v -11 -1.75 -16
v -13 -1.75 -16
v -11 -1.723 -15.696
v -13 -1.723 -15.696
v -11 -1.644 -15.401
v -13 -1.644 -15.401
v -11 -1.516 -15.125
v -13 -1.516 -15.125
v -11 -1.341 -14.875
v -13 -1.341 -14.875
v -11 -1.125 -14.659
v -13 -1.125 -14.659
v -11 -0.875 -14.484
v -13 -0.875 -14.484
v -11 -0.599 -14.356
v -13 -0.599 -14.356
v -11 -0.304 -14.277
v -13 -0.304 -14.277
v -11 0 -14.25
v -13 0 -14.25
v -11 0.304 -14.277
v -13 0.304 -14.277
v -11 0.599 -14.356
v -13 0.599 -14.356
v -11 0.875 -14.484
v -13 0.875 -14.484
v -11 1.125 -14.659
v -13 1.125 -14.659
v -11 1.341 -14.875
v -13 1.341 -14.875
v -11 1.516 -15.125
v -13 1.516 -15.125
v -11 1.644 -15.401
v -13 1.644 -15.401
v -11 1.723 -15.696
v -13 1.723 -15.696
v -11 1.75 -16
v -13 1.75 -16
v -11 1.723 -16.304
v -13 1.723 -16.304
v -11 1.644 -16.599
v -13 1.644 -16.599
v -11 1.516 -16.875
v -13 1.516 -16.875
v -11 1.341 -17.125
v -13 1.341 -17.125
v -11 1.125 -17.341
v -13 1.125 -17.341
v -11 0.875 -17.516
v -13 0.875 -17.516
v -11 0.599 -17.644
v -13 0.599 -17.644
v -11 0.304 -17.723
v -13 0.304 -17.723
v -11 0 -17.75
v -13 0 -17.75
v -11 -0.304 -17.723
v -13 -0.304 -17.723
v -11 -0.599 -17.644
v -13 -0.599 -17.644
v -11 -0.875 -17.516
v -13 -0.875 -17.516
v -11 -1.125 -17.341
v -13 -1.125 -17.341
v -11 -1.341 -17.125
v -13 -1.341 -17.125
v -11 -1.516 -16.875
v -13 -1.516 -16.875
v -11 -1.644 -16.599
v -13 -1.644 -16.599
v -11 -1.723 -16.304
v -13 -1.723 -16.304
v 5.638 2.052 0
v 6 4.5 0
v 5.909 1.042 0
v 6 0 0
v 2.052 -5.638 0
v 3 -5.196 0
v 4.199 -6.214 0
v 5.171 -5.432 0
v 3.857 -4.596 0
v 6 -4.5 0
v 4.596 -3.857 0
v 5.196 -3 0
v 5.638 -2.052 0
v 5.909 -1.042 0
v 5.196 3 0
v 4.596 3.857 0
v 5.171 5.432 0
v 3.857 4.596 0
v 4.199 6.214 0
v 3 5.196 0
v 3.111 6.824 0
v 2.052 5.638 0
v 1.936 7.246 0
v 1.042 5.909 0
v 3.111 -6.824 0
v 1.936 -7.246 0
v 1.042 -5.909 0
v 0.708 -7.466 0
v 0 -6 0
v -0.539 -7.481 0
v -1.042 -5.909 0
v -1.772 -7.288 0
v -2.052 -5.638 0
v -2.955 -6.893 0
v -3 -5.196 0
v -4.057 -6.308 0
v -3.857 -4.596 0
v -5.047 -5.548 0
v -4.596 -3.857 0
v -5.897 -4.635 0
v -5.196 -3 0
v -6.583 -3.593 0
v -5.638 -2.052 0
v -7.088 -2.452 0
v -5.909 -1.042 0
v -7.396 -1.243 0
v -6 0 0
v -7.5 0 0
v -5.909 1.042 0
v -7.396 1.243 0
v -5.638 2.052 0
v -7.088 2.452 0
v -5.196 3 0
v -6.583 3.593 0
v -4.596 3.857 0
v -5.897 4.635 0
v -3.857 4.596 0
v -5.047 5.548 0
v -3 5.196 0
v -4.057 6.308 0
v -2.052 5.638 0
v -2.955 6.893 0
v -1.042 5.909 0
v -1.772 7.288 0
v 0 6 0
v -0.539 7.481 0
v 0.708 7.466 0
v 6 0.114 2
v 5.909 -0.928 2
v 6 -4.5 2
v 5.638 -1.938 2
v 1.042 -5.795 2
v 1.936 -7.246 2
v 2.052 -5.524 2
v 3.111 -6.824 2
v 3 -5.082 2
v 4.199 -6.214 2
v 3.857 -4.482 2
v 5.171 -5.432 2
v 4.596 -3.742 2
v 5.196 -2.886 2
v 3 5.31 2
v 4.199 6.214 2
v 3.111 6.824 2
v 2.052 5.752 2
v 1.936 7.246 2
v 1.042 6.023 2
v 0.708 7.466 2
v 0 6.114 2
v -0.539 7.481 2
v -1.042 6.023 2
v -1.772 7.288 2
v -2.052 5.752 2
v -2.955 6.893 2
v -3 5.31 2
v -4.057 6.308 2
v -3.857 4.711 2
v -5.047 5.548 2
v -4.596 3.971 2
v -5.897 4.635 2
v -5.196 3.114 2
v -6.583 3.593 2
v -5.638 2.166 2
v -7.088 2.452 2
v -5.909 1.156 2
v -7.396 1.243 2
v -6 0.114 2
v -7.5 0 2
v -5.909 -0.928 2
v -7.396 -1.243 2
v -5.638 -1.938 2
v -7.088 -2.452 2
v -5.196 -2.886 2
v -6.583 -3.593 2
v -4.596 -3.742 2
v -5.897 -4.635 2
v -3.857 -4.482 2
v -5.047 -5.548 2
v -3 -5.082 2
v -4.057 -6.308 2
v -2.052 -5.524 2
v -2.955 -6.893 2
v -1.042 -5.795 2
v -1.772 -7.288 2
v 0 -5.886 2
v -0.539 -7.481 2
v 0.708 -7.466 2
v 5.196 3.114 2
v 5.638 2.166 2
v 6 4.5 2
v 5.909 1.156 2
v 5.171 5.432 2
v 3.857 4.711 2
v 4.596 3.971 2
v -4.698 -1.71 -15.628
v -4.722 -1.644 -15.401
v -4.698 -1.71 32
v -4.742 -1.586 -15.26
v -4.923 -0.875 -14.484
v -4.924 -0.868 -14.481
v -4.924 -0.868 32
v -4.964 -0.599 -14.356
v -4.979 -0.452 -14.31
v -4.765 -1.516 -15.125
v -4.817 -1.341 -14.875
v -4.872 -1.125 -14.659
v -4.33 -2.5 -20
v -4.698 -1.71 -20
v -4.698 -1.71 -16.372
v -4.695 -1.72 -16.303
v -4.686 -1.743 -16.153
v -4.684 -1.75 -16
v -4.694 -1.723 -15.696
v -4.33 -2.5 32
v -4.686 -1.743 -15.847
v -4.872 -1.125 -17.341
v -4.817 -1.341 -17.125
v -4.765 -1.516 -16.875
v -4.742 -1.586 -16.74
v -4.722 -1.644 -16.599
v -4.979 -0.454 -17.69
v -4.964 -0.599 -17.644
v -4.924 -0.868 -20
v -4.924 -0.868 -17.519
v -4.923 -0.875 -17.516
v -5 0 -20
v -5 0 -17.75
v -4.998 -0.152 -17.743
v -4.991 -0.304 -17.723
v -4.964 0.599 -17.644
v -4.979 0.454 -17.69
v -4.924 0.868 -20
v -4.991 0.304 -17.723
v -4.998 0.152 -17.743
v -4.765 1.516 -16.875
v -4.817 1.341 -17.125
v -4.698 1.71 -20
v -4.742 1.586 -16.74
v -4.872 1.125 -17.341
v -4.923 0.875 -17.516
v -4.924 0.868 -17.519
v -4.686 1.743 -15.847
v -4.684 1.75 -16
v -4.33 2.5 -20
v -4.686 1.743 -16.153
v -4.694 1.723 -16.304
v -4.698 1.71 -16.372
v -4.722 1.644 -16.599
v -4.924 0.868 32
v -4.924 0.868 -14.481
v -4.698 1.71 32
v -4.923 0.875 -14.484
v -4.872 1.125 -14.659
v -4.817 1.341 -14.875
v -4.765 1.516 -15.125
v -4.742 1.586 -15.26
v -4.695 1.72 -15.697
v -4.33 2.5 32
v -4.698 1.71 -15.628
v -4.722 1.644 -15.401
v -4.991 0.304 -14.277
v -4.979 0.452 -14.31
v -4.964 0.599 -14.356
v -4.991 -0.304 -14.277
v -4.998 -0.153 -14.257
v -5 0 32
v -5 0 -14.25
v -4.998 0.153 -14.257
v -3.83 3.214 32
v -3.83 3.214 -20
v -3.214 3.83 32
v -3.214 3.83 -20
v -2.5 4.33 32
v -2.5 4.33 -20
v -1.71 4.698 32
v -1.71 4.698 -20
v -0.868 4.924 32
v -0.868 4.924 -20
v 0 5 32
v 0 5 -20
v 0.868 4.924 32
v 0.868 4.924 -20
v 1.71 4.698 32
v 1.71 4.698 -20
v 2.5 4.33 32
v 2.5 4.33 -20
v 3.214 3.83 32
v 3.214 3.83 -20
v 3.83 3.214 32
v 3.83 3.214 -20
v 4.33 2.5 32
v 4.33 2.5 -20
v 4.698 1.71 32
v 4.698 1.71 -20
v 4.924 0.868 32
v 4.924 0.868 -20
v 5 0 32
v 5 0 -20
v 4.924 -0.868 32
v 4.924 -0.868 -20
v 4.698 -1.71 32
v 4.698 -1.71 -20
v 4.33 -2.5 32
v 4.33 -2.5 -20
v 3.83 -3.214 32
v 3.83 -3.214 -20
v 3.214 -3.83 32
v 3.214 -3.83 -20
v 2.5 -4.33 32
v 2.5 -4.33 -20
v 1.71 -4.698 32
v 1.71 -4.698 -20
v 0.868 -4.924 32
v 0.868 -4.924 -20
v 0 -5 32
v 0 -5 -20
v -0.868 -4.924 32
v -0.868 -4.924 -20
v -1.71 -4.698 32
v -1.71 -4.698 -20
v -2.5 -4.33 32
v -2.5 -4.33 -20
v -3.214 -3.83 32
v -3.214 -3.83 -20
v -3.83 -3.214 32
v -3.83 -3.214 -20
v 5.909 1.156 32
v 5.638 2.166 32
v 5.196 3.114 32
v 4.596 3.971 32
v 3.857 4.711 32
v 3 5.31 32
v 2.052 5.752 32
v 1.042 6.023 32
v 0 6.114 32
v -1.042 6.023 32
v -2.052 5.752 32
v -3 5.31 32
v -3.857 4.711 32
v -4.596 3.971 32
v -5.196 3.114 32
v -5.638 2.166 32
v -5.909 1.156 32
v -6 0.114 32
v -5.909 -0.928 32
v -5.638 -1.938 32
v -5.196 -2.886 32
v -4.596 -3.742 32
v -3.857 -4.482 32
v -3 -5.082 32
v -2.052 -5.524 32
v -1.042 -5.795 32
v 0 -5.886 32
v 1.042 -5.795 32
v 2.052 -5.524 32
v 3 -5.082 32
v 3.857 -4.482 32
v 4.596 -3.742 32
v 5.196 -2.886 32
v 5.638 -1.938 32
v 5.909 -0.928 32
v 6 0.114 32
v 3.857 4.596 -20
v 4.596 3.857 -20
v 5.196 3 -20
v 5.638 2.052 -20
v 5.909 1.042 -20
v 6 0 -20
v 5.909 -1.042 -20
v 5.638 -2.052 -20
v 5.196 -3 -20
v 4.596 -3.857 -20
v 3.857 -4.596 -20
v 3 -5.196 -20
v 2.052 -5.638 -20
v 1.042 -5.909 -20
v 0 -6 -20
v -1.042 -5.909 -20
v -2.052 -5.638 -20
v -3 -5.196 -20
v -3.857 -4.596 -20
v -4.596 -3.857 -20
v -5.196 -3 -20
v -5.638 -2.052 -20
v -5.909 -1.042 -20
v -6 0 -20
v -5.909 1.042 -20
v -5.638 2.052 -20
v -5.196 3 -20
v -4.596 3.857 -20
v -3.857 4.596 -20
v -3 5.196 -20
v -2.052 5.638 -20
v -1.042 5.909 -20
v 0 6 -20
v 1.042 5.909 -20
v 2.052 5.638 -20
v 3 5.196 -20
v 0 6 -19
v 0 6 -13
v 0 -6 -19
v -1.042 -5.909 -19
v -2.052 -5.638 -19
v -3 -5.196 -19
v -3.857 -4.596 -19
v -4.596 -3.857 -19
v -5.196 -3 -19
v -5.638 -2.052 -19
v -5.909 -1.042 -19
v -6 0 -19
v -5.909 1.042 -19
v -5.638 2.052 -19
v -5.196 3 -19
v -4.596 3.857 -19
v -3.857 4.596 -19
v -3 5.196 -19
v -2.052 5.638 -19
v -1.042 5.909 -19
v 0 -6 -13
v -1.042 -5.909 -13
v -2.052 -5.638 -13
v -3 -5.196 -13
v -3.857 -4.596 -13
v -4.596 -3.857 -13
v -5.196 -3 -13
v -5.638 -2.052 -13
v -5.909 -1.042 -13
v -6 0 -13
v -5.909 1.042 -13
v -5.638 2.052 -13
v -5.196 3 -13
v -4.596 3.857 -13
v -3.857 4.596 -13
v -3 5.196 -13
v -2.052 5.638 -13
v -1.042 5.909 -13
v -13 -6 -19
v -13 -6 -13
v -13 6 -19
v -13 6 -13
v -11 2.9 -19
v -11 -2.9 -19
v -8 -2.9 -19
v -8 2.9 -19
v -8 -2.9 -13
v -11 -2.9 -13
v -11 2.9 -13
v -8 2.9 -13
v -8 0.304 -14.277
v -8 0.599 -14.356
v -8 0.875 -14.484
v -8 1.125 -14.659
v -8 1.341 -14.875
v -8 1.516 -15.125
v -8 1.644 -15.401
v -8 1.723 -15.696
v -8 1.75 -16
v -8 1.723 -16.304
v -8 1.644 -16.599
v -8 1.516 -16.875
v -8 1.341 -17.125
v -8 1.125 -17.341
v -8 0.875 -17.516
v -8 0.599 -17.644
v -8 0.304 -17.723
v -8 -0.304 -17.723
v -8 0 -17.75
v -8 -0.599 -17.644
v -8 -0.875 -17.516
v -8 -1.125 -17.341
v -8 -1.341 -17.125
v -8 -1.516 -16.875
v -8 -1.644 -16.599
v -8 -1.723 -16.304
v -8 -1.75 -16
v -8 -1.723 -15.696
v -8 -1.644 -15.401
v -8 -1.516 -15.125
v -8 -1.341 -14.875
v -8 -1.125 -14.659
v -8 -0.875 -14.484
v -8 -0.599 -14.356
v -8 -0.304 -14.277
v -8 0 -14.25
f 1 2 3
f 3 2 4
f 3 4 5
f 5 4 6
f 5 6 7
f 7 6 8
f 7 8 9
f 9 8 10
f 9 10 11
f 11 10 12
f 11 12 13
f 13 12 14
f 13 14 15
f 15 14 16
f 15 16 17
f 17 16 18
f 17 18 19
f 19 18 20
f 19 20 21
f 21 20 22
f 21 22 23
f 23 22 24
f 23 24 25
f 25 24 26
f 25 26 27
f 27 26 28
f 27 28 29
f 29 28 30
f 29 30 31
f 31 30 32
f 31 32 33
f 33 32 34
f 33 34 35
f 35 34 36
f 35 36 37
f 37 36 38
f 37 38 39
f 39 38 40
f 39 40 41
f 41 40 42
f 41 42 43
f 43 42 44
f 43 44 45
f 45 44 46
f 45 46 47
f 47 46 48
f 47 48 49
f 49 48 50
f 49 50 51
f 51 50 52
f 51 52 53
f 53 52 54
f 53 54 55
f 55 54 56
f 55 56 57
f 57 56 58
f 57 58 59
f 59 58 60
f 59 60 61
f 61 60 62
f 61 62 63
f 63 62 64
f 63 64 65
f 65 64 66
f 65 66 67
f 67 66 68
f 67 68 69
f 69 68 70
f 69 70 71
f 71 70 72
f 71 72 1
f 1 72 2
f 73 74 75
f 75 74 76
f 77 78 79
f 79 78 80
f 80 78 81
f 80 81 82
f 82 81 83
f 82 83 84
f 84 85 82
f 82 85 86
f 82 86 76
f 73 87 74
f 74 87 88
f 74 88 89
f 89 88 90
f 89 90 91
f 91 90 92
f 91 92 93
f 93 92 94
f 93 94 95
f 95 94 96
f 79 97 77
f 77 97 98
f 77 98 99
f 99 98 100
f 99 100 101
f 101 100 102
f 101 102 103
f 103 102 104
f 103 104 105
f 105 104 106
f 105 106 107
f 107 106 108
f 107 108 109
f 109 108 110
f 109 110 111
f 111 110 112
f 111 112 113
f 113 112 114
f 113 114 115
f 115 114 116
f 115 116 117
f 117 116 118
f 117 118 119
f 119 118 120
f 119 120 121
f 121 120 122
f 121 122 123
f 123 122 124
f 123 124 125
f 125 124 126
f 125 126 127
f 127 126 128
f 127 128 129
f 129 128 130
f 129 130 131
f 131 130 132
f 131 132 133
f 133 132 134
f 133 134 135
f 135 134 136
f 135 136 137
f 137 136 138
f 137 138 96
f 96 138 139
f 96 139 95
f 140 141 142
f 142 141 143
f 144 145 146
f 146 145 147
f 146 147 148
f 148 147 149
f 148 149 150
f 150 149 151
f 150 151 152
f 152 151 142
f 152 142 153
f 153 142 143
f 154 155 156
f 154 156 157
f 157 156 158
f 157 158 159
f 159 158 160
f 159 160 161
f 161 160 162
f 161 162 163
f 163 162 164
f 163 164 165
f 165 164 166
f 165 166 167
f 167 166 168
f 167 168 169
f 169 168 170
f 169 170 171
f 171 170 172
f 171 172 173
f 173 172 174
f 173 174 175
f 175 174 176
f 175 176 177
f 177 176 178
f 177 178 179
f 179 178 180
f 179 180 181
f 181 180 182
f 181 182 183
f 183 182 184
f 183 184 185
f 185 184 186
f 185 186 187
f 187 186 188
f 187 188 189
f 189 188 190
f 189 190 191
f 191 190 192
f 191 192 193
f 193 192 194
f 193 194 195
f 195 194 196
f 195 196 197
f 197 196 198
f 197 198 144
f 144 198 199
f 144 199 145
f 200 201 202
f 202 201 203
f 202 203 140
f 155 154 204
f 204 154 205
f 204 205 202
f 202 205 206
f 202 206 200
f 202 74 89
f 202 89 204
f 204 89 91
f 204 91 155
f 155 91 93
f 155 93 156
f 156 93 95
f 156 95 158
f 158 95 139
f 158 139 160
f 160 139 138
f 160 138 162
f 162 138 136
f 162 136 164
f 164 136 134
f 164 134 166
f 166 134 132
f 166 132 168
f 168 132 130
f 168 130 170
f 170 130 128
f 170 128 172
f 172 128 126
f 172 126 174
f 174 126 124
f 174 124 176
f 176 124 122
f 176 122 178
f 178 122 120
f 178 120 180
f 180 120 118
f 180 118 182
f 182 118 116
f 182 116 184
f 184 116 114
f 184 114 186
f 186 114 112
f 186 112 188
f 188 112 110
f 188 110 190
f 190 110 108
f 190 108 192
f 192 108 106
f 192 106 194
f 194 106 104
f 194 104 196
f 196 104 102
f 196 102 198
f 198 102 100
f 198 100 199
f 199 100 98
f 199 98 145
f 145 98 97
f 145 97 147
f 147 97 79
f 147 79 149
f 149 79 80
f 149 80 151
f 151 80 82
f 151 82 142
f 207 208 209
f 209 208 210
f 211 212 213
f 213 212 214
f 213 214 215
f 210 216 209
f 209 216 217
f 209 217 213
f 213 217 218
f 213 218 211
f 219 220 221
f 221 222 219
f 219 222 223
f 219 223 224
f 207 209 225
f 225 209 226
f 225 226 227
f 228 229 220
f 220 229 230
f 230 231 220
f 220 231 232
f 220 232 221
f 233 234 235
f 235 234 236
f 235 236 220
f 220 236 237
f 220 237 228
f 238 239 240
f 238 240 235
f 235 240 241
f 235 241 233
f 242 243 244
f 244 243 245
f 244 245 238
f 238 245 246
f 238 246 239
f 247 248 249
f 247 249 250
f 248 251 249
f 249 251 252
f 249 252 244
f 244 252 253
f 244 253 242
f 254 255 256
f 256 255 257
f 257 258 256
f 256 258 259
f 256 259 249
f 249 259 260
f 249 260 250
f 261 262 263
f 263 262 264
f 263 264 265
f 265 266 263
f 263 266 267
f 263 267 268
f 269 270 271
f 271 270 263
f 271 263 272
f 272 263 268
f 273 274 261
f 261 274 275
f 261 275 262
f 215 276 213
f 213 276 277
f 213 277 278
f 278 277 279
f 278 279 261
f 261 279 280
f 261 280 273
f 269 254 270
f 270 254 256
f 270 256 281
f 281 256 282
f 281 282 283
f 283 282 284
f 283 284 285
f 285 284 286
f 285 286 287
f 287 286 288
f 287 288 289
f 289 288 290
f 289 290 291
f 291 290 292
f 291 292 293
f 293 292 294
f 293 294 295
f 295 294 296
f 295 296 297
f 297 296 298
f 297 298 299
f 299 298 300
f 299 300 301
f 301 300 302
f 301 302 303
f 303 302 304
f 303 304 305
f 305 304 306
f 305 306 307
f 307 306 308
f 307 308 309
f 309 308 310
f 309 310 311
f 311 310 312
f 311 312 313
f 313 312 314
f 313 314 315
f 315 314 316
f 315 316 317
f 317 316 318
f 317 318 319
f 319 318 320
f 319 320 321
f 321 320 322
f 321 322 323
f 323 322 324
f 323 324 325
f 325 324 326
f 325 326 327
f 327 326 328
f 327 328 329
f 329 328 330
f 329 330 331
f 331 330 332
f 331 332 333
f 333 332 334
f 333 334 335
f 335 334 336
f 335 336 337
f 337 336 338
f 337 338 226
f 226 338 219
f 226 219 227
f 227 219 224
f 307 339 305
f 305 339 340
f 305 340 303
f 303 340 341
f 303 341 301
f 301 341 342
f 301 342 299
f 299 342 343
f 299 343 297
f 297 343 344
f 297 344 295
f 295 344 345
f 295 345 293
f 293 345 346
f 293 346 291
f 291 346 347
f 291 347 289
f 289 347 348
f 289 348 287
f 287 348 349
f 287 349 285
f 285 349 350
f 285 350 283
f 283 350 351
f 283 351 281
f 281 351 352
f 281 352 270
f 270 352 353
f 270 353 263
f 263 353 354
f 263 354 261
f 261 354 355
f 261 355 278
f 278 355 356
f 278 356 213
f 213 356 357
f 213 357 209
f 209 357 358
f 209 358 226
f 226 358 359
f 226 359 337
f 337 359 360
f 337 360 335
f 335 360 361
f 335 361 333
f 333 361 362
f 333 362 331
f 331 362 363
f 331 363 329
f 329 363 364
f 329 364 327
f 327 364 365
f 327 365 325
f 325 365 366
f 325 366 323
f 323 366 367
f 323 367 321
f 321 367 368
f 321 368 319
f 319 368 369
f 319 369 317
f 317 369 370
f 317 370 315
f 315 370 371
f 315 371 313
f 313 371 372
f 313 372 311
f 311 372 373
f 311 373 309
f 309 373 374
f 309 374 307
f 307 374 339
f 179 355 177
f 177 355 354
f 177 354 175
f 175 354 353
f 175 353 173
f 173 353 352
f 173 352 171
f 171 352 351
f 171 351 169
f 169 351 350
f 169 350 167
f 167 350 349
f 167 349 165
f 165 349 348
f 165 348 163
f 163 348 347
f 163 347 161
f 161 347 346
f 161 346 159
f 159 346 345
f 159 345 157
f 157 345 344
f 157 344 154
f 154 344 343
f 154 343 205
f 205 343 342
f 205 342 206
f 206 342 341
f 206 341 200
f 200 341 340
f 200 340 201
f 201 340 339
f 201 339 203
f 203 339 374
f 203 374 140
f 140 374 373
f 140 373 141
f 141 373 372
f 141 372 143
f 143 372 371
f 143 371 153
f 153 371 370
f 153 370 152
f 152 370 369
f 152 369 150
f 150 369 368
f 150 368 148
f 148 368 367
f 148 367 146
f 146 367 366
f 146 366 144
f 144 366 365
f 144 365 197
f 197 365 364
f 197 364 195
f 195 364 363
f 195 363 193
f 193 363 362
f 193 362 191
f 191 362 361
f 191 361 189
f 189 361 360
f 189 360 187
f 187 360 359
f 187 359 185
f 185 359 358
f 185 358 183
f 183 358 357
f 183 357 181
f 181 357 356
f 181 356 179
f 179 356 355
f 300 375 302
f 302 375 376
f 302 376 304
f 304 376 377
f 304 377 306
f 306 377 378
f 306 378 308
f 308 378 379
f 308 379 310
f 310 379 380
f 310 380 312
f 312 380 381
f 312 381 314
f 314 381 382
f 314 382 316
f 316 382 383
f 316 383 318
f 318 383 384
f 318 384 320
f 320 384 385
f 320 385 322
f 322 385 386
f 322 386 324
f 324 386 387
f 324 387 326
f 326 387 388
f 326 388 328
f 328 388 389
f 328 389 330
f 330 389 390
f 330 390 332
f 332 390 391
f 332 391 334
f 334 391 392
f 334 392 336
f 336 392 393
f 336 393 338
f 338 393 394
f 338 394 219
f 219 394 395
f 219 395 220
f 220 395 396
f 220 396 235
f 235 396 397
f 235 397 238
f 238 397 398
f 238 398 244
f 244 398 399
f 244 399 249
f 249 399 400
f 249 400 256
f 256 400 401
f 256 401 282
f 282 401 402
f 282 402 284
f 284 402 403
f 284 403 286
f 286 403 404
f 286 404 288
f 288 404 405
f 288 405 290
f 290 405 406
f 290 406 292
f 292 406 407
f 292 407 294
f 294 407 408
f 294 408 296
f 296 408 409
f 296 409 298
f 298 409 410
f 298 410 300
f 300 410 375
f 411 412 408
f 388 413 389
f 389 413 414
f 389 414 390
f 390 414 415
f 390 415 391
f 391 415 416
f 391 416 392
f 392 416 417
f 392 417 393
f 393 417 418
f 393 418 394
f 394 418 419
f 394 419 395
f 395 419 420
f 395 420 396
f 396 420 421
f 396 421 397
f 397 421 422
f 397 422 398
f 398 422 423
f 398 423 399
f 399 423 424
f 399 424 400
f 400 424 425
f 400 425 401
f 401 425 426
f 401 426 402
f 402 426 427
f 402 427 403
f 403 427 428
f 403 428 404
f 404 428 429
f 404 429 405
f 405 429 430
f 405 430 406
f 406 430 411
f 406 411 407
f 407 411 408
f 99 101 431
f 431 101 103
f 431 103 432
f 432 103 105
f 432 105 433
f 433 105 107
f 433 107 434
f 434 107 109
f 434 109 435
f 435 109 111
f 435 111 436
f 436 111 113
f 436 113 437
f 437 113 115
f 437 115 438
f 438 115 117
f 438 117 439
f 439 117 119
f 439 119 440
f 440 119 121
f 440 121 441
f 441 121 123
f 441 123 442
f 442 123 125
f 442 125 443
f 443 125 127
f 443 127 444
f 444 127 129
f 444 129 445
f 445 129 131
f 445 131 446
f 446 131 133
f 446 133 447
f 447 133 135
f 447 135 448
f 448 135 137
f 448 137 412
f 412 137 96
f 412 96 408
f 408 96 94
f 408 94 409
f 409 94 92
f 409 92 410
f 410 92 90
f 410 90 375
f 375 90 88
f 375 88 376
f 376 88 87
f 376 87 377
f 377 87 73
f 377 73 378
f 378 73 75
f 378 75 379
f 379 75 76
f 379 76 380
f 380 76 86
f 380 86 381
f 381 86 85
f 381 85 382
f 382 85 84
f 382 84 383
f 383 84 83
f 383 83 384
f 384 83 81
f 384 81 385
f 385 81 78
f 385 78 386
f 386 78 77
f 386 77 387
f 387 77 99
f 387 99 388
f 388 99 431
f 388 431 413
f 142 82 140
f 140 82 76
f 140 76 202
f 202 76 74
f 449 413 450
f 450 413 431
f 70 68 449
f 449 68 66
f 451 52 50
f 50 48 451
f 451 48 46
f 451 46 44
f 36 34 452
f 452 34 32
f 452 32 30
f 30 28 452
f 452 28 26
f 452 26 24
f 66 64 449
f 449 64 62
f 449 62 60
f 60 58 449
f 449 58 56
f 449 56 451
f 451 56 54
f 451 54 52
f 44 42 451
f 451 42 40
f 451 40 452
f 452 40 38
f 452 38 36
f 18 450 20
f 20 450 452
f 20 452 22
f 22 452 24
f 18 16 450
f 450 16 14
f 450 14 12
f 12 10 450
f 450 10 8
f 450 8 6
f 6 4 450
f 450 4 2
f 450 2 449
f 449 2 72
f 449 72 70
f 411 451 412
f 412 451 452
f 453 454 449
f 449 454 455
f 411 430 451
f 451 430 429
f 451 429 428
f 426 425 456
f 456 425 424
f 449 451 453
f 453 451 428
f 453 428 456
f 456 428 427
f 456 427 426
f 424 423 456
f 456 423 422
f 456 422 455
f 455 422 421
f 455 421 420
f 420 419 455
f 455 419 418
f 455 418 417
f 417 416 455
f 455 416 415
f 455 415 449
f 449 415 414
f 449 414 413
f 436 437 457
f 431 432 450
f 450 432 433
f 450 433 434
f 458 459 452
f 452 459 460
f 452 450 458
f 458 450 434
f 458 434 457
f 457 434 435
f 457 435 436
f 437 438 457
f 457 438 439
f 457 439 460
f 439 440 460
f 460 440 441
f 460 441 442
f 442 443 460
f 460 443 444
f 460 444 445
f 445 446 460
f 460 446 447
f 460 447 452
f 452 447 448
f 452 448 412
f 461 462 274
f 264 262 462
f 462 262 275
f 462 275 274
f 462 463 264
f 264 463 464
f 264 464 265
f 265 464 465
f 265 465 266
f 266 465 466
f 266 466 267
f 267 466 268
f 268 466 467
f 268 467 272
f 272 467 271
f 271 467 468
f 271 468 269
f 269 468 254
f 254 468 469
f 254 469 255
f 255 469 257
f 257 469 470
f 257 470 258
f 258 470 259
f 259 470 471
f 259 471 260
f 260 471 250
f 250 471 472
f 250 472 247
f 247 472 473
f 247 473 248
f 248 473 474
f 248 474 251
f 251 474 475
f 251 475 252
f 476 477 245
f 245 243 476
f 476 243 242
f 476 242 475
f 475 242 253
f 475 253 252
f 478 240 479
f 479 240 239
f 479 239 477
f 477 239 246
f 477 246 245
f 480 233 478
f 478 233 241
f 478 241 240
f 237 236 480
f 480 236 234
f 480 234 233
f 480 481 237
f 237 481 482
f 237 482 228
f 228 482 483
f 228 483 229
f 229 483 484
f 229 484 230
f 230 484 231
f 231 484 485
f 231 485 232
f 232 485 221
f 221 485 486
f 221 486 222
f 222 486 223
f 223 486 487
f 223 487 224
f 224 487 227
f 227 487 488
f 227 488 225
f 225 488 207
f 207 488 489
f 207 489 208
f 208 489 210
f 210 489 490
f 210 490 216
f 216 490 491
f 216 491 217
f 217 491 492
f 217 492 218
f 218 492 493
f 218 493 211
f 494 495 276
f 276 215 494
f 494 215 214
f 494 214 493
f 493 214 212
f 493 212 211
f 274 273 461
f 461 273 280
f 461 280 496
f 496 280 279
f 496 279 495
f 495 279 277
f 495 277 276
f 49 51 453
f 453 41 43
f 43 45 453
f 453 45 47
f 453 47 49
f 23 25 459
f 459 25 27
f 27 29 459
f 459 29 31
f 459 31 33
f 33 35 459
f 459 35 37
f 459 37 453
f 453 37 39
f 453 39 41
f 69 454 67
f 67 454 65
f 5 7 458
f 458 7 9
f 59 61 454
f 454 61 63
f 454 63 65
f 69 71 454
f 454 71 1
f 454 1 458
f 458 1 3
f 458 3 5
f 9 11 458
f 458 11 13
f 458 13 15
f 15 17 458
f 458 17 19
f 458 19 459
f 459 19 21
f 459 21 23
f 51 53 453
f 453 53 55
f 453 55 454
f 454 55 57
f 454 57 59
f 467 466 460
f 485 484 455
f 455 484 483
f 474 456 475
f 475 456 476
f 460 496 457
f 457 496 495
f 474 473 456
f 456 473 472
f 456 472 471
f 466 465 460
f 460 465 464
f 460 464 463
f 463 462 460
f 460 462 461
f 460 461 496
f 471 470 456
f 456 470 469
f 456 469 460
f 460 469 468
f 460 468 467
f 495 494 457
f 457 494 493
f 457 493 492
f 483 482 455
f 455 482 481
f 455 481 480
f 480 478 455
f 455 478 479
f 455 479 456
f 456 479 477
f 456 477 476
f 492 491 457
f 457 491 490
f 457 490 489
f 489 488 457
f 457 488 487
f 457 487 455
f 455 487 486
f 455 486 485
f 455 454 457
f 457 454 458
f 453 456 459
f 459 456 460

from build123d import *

# Parameters (mm, degrees)
ESQUISSE1_R             = 7.5
ESQUISSE1_R_2           = 5
BOSS_EXTRU_1_DEPTH      = 2
ESQUISSE2_R             = 6
ESQUISSE2_R_2           = 5
BOSS_EXTRU_2_DEPTH      = 30
ESQUISSE3_R             = 6
ESQUISSE3_R_2           = 5
BOSS_EXTRU_3_DEPTH      = 20
ENL_V_MAT_EXTRU_1_DEPTH = 33
BOSS_EXTRU_4_DEPTH      = 3
ESQUISSE8_R             = 1.75
ENL_V_MAT_EXTRU_3_DEPTH = 16
ESQUISSE9_W             = 3
ESQUISSE9_H             = 5.8
ENL_V_MAT_EXTRU_4_DEPTH = 6


with BuildPart() as part:
    # Esquisse1 → Boss.-Extru.1 (new body)
    with BuildSketch(Plane.XY):
        Circle(ESQUISSE1_R)
        Circle(ESQUISSE1_R_2, mode=Mode.SUBTRACT)
    extrude(amount=BOSS_EXTRU_1_DEPTH)

    # Esquisse2 → Boss.-Extru.2 (add)
    with BuildSketch(Plane.XY.offset(2)):
        with Locations((0, 0.114284202)):
            Circle(ESQUISSE2_R)
        Circle(ESQUISSE2_R_2, mode=Mode.SUBTRACT)
    extrude(amount=BOSS_EXTRU_2_DEPTH)

    # Esquisse3 → Boss.-Extru.3 (add)
    with BuildSketch(Plane(origin=(0, 0, 0), x_dir=(-1, 0, 0), z_dir=(0, 0, -1))):
        Circle(ESQUISSE3_R)
        Circle(ESQUISSE3_R_2, mode=Mode.SUBTRACT)
    extrude(amount=BOSS_EXTRU_3_DEPTH)

    # Esquisse4 → Enlèv. mat.-Extru.1 (cut, through all)
    with BuildSketch(Plane(origin=(0, 0, 0), x_dir=(-1, 0, 0), z_dir=(0, 0, -1))):
        with BuildLine():
            Line((-6, 4.5), (-6, -4.5))
            ThreePointArc((-6, -4.5), (-7.5, 0), (-6, 4.5))
        make_face()
    extrude(amount=-ENL_V_MAT_EXTRU_1_DEPTH, mode=Mode.SUBTRACT)

    # Esquisse7 → Boss.-Extru.4 (add, symmetric)
    with BuildSketch(Plane(origin=(0, 0, -16), x_dir=(-1, 0, 0), z_dir=(0, 0, -1))):
        with BuildLine():
            Line((0, 6), (13, 6))
            Line((13, 6), (13, -6))
            Line((13, -6), (0, -6))
            ThreePointArc((0, -6), (6, 0), (0, 6))
        make_face()
    extrude(amount=BOSS_EXTRU_4_DEPTH, both=True)

    # Esquisse8 → Enlèv. mat.-Extru.3 (cut)
    with BuildSketch(Plane.ZY.offset(13)):
        with Locations((-16, 0)):
            Circle(ESQUISSE8_R)
    extrude(amount=-ENL_V_MAT_EXTRU_3_DEPTH, mode=Mode.SUBTRACT)

    # Esquisse9 → Enlèv. mat.-Extru.4 (cut)
    with BuildSketch(Plane(origin=(0, 0, -19), x_dir=(-1, 0, 0), z_dir=(0, 0, -1))):
        with Locations((9.5, 0)):
            Rectangle(ESQUISSE9_W, ESQUISSE9_H)
    extrude(amount=-ENL_V_MAT_EXTRU_4_DEPTH, mode=Mode.SUBTRACT)


solid = part.part
